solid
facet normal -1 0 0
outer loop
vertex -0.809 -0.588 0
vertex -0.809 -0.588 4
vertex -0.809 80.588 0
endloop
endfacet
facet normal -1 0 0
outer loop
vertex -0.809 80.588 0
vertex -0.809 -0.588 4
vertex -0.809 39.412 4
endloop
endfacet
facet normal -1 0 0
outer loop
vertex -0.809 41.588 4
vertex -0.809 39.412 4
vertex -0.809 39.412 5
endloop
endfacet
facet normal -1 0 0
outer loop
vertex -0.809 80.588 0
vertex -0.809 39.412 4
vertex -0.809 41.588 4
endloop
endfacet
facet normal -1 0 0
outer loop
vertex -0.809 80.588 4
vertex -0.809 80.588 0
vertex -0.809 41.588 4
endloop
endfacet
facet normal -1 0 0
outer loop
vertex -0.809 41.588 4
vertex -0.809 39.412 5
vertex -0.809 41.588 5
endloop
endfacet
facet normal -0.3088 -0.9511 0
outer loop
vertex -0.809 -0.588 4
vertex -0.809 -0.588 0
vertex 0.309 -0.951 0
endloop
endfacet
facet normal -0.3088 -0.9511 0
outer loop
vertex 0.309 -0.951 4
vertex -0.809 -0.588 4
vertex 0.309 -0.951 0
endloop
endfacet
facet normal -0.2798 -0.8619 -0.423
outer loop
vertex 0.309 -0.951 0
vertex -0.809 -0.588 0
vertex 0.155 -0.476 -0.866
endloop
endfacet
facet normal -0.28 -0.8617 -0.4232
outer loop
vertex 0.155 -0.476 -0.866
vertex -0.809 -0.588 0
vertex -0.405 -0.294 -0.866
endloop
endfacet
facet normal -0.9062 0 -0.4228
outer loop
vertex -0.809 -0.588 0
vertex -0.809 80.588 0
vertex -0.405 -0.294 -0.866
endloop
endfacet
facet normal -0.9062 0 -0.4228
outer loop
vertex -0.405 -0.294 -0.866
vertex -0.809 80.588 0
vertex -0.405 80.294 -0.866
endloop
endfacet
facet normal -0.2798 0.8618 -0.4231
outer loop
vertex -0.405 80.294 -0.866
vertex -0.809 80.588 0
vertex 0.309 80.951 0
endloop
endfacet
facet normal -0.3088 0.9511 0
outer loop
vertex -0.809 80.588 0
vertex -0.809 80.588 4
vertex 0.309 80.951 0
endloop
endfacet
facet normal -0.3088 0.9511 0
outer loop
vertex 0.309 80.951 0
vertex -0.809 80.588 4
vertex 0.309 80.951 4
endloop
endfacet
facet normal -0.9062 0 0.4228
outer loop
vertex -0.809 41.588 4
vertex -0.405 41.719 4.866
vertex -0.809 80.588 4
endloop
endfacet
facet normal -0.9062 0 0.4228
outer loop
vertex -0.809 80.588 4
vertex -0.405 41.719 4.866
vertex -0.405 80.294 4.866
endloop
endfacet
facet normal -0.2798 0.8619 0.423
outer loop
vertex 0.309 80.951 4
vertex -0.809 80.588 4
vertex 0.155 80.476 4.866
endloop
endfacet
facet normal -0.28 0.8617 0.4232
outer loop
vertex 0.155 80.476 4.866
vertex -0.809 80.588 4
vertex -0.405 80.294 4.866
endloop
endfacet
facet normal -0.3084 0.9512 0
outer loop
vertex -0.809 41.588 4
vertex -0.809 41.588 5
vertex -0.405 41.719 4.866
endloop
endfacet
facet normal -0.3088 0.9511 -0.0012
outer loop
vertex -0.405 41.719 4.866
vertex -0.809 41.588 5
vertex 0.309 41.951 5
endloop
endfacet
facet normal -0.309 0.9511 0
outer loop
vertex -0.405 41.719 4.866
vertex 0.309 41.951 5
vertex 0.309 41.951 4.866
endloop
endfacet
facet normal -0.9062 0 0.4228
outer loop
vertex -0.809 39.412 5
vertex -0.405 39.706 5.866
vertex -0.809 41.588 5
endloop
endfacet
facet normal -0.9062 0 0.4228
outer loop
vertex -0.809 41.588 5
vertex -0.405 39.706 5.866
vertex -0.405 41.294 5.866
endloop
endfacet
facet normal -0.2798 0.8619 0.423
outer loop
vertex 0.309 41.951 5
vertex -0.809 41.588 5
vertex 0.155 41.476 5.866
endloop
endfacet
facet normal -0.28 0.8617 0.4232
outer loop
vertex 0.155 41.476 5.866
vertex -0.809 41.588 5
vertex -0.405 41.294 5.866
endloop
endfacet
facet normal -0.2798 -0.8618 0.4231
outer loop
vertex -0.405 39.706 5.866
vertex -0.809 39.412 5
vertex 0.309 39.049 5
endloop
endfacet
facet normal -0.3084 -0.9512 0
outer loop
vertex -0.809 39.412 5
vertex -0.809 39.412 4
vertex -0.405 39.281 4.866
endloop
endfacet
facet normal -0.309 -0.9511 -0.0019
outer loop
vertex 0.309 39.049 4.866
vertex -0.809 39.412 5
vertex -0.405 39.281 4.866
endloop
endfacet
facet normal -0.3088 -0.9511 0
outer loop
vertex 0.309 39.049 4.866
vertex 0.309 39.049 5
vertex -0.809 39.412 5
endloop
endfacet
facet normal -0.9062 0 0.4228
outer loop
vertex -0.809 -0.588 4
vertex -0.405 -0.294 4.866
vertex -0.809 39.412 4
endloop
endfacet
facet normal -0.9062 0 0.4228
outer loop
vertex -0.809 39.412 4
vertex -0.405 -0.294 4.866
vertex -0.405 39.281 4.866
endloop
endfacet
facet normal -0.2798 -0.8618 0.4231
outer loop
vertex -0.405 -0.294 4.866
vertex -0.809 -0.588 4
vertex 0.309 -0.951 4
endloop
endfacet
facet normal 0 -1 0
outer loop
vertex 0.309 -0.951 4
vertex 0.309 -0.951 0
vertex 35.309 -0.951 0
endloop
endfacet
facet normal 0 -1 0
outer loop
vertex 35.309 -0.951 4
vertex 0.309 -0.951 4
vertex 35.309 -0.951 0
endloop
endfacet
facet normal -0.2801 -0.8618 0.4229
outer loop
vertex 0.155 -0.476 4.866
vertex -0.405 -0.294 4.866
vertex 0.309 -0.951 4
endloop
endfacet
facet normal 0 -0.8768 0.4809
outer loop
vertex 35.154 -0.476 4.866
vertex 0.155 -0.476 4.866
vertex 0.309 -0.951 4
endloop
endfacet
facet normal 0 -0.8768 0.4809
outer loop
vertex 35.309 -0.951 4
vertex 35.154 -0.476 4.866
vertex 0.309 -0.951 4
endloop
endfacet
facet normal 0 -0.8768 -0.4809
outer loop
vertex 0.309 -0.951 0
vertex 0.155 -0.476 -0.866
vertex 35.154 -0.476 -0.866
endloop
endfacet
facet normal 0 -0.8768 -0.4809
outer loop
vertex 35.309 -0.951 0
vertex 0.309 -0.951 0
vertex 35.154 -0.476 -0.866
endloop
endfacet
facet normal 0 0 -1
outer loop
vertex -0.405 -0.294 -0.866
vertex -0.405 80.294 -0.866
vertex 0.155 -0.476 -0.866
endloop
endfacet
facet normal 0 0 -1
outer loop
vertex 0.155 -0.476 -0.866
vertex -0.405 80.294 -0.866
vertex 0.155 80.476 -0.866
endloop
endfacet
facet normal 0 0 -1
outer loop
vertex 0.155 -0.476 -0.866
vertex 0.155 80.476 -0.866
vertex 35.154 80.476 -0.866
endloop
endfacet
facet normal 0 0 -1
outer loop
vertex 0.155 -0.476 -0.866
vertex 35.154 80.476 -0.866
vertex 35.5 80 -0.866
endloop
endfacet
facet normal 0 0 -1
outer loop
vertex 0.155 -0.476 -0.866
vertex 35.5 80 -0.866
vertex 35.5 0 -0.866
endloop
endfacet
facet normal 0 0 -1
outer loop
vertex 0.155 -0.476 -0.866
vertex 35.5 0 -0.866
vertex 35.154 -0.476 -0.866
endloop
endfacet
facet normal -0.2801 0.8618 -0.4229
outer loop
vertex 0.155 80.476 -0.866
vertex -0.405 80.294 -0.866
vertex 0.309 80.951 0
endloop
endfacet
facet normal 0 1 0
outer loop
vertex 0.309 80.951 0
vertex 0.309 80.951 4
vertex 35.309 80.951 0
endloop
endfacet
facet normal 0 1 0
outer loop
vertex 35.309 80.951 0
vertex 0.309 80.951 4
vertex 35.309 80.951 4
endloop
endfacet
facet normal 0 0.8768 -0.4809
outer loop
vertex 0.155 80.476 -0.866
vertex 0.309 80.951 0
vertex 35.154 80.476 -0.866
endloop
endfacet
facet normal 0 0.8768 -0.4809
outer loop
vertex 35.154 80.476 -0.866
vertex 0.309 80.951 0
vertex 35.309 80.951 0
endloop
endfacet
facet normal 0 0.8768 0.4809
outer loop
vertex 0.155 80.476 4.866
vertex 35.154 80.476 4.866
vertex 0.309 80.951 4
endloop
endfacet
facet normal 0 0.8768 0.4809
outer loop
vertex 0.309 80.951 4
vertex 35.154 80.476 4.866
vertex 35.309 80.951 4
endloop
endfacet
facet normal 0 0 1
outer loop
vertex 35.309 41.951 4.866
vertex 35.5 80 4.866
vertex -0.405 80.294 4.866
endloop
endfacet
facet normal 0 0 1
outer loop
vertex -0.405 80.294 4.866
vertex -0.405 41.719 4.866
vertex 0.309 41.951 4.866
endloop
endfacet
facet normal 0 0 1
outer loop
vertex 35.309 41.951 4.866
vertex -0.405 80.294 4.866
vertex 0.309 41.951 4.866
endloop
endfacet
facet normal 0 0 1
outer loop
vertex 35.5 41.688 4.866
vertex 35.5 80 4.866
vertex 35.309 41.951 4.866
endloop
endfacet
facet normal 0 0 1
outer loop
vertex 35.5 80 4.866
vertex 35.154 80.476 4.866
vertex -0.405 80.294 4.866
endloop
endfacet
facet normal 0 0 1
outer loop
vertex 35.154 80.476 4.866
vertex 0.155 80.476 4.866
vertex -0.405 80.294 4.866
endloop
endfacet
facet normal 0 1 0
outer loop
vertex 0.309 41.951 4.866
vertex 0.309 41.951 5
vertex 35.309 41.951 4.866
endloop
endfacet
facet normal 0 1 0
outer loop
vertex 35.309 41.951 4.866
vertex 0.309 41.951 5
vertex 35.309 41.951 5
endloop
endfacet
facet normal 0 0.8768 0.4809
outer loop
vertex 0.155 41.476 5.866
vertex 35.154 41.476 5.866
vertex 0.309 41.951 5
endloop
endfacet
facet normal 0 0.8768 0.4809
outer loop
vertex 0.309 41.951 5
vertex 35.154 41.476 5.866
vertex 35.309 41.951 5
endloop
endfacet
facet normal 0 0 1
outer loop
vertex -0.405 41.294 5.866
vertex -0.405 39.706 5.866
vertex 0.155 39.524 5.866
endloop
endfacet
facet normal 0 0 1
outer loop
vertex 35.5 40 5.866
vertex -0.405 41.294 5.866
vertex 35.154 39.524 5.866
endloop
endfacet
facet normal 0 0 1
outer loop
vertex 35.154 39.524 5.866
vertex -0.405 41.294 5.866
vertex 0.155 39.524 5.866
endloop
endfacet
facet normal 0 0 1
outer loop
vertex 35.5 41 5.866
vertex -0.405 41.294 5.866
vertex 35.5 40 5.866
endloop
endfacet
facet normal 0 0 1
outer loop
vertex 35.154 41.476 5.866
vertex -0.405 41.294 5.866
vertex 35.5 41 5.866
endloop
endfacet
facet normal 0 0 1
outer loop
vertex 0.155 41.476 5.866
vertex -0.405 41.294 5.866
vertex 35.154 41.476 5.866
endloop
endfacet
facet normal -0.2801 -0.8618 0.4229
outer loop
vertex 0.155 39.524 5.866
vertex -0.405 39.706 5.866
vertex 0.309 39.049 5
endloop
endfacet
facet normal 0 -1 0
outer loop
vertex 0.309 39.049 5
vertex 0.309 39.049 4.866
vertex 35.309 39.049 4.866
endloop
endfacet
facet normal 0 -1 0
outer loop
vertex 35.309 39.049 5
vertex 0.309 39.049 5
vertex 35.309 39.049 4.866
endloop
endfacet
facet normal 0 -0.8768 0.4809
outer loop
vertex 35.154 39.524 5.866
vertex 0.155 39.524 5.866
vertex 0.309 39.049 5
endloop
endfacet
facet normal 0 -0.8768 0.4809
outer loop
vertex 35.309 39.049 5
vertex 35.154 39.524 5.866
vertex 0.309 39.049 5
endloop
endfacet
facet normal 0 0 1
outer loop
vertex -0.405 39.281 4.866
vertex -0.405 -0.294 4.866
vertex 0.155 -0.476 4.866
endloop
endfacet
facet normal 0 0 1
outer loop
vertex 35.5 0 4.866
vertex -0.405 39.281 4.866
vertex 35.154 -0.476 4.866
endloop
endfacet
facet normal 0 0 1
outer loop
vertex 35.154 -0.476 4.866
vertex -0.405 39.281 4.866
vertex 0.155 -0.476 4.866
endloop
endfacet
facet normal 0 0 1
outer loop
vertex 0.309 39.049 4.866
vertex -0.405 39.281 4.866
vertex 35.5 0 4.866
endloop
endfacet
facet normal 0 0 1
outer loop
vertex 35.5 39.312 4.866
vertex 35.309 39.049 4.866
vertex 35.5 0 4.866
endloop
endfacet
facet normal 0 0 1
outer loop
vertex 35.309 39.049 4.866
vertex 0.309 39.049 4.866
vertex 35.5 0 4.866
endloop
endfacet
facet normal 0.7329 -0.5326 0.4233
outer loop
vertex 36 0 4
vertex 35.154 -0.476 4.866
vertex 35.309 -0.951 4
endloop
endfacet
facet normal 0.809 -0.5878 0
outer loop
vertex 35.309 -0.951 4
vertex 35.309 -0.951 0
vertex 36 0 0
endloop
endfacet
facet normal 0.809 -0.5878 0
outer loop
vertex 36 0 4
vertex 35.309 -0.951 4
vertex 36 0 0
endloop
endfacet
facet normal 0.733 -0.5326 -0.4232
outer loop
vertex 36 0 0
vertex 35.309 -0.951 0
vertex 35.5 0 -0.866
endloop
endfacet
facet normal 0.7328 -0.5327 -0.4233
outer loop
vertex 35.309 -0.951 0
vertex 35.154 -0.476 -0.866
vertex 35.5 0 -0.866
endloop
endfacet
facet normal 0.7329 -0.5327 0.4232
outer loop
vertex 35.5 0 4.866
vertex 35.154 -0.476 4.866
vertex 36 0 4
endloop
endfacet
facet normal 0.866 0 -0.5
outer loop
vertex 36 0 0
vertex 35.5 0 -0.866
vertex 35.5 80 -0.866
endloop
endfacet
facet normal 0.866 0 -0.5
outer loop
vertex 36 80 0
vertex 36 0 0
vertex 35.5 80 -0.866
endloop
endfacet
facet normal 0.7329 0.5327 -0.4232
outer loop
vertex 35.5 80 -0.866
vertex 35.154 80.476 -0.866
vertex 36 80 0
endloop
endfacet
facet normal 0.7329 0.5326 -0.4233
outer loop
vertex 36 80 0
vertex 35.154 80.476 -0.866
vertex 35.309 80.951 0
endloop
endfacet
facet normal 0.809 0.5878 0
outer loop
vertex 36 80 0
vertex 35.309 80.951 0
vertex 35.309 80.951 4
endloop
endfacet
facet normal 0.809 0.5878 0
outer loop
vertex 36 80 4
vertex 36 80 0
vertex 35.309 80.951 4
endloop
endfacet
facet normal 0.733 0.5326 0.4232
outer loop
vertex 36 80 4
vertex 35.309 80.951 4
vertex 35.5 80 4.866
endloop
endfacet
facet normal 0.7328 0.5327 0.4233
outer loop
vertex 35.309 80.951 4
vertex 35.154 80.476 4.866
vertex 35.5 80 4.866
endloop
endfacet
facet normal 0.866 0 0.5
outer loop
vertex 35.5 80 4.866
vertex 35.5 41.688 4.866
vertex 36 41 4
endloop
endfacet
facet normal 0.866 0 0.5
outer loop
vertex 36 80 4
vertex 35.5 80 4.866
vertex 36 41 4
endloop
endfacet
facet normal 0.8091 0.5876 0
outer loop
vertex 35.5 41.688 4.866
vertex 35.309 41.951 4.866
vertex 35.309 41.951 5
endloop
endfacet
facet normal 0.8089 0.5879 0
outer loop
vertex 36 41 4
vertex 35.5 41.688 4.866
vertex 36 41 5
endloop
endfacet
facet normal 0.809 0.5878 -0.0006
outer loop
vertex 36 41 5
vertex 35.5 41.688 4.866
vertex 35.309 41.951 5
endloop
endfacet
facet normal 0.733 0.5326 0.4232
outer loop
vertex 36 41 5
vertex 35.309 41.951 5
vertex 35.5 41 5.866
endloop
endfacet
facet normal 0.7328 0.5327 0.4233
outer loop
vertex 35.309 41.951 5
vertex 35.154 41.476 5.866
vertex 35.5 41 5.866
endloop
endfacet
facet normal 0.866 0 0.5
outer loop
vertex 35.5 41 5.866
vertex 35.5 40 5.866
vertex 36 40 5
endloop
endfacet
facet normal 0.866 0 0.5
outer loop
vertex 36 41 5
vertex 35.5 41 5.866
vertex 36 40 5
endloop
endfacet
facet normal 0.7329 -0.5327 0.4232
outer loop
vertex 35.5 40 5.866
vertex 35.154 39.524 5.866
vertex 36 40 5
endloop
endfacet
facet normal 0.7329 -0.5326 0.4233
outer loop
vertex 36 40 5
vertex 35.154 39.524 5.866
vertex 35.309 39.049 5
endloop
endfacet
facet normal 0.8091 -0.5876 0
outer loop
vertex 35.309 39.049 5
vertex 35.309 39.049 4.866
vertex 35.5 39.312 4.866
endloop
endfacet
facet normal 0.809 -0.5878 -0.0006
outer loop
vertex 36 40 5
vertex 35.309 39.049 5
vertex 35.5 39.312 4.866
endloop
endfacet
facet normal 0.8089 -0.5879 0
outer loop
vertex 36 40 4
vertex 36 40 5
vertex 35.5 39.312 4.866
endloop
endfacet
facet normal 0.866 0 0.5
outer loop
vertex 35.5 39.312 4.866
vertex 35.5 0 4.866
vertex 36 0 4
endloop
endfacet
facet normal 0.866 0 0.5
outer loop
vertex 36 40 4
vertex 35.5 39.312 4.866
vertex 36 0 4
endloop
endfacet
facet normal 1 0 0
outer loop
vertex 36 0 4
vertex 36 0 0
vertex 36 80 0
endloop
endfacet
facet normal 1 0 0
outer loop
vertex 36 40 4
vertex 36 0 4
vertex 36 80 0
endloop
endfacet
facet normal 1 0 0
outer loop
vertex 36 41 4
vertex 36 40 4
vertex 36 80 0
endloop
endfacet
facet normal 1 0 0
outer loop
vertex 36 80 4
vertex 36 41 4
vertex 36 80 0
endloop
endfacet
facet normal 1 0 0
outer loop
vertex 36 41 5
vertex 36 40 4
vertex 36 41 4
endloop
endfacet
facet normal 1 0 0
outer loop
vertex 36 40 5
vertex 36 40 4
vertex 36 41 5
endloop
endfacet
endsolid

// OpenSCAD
// Loguncov Maxim 13.12.13


//$fn=128;


translate([0,40,0])
minkowski()
{cube([35,1,5]);
sphere(1);
}

difference() {

//основа
minkowski()
{cube([35,80,4]);
sphere(1);
}
}
